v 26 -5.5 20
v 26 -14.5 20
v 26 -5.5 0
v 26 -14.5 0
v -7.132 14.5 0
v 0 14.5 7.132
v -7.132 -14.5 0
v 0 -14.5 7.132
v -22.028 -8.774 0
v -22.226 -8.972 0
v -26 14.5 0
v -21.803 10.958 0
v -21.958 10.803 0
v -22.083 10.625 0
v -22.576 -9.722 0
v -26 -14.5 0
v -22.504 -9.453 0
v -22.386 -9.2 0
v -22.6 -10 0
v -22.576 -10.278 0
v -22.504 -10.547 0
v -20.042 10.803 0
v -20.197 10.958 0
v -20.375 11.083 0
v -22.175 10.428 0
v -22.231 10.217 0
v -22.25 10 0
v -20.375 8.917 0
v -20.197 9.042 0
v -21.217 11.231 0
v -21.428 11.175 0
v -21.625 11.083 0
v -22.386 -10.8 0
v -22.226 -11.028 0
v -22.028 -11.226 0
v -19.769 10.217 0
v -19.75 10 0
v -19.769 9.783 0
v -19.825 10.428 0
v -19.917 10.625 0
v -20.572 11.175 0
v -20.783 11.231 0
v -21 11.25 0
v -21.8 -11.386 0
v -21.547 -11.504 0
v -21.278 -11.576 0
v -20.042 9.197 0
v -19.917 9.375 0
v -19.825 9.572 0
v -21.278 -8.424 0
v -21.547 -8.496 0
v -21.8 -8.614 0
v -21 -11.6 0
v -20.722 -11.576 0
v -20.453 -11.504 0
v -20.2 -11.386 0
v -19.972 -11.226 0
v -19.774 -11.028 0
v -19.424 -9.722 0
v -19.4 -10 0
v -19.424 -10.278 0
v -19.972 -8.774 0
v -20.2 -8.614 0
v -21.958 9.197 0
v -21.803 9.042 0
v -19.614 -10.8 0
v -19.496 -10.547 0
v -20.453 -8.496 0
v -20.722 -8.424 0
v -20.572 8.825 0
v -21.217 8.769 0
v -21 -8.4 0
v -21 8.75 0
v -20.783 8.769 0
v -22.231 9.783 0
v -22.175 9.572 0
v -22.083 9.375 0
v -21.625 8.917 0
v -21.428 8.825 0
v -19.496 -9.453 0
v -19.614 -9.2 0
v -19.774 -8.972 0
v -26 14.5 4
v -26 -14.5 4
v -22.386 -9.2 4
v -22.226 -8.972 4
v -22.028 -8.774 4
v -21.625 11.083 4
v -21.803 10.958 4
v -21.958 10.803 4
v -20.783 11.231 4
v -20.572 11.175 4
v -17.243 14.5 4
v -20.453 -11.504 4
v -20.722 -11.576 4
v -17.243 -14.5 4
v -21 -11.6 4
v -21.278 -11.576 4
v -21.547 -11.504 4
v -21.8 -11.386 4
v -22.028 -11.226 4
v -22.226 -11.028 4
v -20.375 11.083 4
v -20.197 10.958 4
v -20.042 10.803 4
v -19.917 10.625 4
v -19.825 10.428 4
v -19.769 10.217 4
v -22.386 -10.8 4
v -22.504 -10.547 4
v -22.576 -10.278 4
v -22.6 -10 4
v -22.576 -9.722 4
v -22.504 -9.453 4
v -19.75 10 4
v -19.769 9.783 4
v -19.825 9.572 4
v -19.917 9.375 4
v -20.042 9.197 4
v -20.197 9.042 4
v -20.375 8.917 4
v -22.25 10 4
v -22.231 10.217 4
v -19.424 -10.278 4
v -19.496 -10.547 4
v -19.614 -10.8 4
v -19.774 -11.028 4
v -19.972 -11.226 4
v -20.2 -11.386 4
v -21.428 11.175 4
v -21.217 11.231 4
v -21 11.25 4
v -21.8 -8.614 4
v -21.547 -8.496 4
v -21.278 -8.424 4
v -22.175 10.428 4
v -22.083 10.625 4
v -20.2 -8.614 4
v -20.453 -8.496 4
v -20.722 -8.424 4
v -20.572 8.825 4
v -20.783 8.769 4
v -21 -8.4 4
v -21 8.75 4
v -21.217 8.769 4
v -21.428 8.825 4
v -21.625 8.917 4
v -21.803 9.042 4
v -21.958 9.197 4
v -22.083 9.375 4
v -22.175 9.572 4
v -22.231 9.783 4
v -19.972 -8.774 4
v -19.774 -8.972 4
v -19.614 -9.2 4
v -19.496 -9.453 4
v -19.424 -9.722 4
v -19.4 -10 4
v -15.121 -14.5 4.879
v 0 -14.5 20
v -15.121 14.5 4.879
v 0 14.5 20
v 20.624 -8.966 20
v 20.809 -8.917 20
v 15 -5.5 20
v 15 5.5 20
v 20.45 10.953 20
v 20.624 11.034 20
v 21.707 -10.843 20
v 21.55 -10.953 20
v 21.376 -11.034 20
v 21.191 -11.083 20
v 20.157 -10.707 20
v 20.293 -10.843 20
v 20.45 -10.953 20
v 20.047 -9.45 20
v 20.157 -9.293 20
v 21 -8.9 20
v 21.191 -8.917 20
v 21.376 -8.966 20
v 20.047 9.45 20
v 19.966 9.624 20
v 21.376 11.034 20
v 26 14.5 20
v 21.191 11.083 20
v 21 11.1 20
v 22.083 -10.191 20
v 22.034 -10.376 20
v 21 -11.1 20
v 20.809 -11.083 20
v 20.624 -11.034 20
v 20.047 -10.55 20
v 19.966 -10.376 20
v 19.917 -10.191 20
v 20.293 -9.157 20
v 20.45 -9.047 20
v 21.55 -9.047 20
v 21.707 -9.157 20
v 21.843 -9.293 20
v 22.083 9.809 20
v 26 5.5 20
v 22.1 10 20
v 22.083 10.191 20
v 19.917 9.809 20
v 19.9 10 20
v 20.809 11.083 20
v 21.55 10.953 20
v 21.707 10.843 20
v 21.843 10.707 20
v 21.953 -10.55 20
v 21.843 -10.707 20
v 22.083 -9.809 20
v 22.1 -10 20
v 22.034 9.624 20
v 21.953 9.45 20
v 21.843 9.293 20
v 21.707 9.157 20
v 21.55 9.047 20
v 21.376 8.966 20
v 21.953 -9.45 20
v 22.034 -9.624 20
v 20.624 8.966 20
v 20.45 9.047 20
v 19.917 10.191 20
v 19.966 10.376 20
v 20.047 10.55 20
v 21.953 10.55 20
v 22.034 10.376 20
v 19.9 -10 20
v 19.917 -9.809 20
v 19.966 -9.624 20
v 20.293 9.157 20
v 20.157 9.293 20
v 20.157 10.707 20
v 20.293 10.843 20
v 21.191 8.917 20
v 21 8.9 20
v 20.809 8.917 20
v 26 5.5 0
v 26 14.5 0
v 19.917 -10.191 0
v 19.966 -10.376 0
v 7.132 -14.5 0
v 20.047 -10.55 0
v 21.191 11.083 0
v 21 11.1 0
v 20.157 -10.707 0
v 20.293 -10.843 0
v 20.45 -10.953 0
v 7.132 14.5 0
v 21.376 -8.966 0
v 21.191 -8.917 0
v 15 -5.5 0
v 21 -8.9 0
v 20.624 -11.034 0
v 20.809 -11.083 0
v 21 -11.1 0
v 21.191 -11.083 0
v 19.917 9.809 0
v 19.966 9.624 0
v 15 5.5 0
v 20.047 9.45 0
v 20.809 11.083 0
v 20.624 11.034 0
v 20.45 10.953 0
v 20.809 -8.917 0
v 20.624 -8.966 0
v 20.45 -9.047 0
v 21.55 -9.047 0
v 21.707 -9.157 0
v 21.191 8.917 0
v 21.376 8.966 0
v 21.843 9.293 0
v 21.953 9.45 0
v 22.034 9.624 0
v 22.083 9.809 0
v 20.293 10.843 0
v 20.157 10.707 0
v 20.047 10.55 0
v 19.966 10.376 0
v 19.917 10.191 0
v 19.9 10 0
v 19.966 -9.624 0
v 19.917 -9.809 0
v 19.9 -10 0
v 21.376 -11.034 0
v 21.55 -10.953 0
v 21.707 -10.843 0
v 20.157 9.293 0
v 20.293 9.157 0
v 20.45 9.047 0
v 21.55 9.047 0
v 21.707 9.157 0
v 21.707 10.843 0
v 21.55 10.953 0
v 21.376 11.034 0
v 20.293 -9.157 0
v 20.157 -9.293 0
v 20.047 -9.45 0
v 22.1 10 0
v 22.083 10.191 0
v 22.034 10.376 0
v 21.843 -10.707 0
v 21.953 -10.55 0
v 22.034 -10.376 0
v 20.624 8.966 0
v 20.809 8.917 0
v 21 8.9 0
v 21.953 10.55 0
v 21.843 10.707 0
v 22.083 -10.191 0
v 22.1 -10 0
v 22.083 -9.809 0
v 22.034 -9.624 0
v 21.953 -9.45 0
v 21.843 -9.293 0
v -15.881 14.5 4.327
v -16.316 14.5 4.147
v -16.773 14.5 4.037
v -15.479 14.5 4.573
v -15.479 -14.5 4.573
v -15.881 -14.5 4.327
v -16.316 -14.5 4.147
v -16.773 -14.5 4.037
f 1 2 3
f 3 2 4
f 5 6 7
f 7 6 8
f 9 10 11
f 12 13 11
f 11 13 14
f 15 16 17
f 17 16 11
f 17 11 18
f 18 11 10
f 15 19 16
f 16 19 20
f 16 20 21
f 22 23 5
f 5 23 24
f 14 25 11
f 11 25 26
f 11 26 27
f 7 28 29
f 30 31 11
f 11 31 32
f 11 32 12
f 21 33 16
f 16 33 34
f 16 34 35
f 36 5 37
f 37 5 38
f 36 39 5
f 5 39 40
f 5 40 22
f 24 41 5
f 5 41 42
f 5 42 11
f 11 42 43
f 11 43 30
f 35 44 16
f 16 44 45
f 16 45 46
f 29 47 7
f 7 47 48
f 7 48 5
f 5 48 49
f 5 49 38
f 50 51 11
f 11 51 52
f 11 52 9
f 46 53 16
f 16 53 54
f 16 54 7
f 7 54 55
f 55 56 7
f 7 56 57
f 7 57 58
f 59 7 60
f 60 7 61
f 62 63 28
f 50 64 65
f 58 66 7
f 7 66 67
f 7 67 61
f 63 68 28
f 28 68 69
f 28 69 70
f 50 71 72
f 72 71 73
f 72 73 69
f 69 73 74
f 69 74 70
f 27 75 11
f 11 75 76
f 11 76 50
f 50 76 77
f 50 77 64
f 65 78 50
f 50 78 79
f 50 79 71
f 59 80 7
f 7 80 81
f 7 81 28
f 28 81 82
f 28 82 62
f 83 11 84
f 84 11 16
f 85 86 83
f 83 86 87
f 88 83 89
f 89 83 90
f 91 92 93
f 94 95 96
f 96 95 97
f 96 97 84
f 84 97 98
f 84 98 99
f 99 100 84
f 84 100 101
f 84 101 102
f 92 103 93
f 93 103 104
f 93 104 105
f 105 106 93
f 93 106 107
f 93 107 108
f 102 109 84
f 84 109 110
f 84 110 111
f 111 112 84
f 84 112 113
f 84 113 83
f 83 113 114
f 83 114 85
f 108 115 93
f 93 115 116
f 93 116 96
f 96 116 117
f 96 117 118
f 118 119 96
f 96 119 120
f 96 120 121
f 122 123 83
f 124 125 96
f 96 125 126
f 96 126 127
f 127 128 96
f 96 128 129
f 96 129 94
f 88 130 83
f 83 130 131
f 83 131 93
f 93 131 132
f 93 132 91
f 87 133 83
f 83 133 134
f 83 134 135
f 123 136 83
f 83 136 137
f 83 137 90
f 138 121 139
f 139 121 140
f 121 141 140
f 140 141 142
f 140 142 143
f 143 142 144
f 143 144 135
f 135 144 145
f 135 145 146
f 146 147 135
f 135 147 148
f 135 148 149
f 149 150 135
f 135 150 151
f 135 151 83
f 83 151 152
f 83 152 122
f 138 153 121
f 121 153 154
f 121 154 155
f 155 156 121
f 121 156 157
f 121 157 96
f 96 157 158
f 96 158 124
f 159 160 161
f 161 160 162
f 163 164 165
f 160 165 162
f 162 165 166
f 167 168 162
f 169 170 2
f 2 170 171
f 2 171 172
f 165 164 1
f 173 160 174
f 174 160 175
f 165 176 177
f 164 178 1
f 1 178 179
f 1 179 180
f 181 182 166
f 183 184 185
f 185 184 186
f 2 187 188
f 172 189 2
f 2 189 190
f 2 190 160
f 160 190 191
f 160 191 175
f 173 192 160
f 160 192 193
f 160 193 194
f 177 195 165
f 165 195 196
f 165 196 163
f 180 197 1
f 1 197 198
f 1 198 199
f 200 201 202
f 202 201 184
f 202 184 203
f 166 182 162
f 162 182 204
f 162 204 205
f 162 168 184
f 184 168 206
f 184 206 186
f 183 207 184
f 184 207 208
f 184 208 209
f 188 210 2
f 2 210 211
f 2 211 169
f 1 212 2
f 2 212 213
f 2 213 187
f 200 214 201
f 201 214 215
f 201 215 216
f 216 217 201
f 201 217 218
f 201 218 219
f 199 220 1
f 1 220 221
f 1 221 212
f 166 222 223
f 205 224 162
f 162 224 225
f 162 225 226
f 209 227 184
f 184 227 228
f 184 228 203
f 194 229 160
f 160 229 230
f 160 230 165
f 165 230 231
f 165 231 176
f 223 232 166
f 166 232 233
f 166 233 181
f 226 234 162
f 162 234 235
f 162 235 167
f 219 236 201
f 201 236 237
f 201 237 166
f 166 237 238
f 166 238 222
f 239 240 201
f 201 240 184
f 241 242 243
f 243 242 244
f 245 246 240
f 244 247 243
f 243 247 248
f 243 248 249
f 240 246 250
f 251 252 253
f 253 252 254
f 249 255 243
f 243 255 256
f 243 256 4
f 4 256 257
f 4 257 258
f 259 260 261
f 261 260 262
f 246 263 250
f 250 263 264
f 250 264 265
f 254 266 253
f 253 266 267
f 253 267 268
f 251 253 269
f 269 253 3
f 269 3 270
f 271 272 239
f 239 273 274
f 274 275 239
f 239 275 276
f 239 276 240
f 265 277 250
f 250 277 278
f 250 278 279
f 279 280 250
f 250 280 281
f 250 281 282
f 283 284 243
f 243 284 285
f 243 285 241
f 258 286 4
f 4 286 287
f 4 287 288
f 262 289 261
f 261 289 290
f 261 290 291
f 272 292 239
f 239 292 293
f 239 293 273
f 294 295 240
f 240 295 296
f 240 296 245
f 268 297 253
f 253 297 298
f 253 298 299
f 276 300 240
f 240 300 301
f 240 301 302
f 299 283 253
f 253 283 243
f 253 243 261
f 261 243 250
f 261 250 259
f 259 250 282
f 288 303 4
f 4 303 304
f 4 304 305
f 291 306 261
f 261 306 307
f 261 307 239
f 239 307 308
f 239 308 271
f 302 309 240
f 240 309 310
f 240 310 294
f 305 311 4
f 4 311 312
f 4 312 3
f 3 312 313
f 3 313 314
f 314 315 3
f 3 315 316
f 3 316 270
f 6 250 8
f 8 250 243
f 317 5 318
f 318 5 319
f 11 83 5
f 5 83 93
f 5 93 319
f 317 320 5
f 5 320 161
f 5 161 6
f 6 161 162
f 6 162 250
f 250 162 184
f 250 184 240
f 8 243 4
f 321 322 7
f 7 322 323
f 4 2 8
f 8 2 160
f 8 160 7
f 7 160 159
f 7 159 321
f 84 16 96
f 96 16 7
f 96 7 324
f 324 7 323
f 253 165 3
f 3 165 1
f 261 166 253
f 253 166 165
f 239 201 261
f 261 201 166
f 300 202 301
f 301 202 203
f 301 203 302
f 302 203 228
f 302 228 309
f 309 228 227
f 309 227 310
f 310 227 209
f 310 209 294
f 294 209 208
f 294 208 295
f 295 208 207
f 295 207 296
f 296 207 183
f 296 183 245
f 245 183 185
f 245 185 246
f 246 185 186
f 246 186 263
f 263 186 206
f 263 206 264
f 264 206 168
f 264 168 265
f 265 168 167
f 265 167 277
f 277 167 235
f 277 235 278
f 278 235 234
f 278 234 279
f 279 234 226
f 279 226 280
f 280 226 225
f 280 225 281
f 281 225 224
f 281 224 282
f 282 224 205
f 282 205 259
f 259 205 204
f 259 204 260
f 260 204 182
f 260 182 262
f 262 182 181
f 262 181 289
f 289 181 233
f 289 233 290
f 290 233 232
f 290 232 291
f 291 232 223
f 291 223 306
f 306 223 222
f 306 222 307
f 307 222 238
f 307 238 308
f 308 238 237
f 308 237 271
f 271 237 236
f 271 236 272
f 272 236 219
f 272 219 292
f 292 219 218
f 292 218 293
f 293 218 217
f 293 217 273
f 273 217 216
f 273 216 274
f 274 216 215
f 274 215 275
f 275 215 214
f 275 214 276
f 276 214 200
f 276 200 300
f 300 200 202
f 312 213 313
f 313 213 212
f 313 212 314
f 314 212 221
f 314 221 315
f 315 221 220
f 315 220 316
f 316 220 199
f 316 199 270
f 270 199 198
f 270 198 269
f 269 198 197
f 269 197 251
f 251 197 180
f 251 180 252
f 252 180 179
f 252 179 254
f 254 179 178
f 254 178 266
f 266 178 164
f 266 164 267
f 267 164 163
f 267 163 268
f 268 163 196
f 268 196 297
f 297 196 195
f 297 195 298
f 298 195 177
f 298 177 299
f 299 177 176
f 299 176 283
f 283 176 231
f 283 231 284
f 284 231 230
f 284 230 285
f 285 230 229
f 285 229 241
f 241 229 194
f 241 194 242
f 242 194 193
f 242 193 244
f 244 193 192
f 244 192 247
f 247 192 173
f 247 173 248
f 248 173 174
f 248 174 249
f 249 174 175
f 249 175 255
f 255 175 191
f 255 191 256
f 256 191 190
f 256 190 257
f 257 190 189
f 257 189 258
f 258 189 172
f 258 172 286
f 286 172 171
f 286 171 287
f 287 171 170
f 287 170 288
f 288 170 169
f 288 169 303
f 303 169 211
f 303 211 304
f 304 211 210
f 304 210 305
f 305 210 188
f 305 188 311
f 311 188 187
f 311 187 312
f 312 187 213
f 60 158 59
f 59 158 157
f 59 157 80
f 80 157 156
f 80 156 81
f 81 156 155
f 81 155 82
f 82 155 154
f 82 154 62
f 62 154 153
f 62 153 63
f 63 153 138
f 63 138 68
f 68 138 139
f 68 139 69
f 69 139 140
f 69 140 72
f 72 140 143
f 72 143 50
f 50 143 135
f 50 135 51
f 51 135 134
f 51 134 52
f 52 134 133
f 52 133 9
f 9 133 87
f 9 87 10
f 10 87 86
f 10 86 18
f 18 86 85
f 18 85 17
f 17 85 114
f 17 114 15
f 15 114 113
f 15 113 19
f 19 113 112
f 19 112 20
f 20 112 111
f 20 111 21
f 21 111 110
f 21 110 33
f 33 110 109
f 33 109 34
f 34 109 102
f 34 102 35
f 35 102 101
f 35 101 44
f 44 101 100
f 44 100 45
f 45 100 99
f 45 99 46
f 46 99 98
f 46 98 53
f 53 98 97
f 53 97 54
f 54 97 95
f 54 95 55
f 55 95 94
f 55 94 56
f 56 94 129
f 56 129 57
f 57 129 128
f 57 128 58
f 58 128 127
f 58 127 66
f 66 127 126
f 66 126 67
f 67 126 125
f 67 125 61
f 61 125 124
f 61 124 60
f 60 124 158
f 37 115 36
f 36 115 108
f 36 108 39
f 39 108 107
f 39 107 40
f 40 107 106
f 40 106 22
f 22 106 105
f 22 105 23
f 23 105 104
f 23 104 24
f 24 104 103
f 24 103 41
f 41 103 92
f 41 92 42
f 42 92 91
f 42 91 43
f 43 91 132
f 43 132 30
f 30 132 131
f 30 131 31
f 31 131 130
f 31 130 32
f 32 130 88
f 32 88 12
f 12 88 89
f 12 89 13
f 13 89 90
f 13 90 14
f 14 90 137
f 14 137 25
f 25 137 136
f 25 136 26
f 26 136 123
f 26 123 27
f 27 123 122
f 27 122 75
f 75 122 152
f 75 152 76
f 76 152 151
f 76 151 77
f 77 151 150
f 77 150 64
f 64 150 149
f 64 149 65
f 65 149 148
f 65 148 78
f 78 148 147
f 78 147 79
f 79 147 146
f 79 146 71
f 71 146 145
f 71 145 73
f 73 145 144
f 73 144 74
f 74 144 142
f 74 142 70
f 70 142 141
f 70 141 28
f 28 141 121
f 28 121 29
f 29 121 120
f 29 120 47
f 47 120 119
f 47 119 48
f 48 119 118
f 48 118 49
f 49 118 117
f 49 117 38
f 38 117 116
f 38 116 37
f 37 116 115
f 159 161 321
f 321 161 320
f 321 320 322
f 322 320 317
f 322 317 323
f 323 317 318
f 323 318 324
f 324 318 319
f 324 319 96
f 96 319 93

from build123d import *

# Parameters (mm, degrees)
BOSS_EXTRUDE1_DEPTH     = 14.5
CUT_EXTRUDE2_DEPTH      = 36.864327681
CUT_EXTRUDE2_DEPTH_BACK = 36.864327681
SKETCH4_R               = 1.1
SKETCH4_W               = 11
SKETCH4_H               = 11
SKETCH5_R               = 1.25
SKETCH5_R_2             = 1.6
CUT_EXTRUDE3_DEPTH      = 34.797189232
FILLET1_R               = 3


with BuildPart() as part:
    # Sketch1 → Boss-Extrude1 (new, symmetric)
    with BuildSketch(Plane(origin=(0, 0, 0), x_dir=(1, 0, 0), z_dir=(0, 1, 0))):
        Polygon((-7.131727984, 0), (-26, 0), (-26, -4), (-16, -4), (0, -20), (26, -20), (26, 0), (7.131727984, 0), (0, -7.131727984), align=None)
    extrude(amount=BOSS_EXTRUDE1_DEPTH, both=True)

    # Sketch4 → Cut-Extrude2 (cut, two sides: drawn at the far end of the back side and taken through both)
    with BuildSketch(Plane.XY.offset(20).offset(-CUT_EXTRUDE2_DEPTH_BACK)):
        with Locations((21, 10)):
            Circle(SKETCH4_R)
        with Locations((21, -10)):
            Circle(SKETCH4_R)
        with Locations((20.5, 0)):
            Rectangle(SKETCH4_W, SKETCH4_H)
    extrude(amount=CUT_EXTRUDE2_DEPTH + CUT_EXTRUDE2_DEPTH_BACK, mode=Mode.SUBTRACT)

    # Sketch5 → Cut-Extrude3 (cut, through all)
    with BuildSketch(Plane.XY.offset(4)):
        with Locations((-21, 10)):
            Circle(SKETCH5_R)
        with Locations((-21, -10)):
            Circle(SKETCH5_R_2)
    extrude(amount=-CUT_EXTRUDE3_DEPTH, mode=Mode.SUBTRACT)

    # Fillet1
    fillet1_edges = [part.edges().sort_by_distance(p)[0] for p in [
        (-16, 0, 4),
    ]]
    fillet(fillet1_edges, radius=FILLET1_R)


solid = part.part
